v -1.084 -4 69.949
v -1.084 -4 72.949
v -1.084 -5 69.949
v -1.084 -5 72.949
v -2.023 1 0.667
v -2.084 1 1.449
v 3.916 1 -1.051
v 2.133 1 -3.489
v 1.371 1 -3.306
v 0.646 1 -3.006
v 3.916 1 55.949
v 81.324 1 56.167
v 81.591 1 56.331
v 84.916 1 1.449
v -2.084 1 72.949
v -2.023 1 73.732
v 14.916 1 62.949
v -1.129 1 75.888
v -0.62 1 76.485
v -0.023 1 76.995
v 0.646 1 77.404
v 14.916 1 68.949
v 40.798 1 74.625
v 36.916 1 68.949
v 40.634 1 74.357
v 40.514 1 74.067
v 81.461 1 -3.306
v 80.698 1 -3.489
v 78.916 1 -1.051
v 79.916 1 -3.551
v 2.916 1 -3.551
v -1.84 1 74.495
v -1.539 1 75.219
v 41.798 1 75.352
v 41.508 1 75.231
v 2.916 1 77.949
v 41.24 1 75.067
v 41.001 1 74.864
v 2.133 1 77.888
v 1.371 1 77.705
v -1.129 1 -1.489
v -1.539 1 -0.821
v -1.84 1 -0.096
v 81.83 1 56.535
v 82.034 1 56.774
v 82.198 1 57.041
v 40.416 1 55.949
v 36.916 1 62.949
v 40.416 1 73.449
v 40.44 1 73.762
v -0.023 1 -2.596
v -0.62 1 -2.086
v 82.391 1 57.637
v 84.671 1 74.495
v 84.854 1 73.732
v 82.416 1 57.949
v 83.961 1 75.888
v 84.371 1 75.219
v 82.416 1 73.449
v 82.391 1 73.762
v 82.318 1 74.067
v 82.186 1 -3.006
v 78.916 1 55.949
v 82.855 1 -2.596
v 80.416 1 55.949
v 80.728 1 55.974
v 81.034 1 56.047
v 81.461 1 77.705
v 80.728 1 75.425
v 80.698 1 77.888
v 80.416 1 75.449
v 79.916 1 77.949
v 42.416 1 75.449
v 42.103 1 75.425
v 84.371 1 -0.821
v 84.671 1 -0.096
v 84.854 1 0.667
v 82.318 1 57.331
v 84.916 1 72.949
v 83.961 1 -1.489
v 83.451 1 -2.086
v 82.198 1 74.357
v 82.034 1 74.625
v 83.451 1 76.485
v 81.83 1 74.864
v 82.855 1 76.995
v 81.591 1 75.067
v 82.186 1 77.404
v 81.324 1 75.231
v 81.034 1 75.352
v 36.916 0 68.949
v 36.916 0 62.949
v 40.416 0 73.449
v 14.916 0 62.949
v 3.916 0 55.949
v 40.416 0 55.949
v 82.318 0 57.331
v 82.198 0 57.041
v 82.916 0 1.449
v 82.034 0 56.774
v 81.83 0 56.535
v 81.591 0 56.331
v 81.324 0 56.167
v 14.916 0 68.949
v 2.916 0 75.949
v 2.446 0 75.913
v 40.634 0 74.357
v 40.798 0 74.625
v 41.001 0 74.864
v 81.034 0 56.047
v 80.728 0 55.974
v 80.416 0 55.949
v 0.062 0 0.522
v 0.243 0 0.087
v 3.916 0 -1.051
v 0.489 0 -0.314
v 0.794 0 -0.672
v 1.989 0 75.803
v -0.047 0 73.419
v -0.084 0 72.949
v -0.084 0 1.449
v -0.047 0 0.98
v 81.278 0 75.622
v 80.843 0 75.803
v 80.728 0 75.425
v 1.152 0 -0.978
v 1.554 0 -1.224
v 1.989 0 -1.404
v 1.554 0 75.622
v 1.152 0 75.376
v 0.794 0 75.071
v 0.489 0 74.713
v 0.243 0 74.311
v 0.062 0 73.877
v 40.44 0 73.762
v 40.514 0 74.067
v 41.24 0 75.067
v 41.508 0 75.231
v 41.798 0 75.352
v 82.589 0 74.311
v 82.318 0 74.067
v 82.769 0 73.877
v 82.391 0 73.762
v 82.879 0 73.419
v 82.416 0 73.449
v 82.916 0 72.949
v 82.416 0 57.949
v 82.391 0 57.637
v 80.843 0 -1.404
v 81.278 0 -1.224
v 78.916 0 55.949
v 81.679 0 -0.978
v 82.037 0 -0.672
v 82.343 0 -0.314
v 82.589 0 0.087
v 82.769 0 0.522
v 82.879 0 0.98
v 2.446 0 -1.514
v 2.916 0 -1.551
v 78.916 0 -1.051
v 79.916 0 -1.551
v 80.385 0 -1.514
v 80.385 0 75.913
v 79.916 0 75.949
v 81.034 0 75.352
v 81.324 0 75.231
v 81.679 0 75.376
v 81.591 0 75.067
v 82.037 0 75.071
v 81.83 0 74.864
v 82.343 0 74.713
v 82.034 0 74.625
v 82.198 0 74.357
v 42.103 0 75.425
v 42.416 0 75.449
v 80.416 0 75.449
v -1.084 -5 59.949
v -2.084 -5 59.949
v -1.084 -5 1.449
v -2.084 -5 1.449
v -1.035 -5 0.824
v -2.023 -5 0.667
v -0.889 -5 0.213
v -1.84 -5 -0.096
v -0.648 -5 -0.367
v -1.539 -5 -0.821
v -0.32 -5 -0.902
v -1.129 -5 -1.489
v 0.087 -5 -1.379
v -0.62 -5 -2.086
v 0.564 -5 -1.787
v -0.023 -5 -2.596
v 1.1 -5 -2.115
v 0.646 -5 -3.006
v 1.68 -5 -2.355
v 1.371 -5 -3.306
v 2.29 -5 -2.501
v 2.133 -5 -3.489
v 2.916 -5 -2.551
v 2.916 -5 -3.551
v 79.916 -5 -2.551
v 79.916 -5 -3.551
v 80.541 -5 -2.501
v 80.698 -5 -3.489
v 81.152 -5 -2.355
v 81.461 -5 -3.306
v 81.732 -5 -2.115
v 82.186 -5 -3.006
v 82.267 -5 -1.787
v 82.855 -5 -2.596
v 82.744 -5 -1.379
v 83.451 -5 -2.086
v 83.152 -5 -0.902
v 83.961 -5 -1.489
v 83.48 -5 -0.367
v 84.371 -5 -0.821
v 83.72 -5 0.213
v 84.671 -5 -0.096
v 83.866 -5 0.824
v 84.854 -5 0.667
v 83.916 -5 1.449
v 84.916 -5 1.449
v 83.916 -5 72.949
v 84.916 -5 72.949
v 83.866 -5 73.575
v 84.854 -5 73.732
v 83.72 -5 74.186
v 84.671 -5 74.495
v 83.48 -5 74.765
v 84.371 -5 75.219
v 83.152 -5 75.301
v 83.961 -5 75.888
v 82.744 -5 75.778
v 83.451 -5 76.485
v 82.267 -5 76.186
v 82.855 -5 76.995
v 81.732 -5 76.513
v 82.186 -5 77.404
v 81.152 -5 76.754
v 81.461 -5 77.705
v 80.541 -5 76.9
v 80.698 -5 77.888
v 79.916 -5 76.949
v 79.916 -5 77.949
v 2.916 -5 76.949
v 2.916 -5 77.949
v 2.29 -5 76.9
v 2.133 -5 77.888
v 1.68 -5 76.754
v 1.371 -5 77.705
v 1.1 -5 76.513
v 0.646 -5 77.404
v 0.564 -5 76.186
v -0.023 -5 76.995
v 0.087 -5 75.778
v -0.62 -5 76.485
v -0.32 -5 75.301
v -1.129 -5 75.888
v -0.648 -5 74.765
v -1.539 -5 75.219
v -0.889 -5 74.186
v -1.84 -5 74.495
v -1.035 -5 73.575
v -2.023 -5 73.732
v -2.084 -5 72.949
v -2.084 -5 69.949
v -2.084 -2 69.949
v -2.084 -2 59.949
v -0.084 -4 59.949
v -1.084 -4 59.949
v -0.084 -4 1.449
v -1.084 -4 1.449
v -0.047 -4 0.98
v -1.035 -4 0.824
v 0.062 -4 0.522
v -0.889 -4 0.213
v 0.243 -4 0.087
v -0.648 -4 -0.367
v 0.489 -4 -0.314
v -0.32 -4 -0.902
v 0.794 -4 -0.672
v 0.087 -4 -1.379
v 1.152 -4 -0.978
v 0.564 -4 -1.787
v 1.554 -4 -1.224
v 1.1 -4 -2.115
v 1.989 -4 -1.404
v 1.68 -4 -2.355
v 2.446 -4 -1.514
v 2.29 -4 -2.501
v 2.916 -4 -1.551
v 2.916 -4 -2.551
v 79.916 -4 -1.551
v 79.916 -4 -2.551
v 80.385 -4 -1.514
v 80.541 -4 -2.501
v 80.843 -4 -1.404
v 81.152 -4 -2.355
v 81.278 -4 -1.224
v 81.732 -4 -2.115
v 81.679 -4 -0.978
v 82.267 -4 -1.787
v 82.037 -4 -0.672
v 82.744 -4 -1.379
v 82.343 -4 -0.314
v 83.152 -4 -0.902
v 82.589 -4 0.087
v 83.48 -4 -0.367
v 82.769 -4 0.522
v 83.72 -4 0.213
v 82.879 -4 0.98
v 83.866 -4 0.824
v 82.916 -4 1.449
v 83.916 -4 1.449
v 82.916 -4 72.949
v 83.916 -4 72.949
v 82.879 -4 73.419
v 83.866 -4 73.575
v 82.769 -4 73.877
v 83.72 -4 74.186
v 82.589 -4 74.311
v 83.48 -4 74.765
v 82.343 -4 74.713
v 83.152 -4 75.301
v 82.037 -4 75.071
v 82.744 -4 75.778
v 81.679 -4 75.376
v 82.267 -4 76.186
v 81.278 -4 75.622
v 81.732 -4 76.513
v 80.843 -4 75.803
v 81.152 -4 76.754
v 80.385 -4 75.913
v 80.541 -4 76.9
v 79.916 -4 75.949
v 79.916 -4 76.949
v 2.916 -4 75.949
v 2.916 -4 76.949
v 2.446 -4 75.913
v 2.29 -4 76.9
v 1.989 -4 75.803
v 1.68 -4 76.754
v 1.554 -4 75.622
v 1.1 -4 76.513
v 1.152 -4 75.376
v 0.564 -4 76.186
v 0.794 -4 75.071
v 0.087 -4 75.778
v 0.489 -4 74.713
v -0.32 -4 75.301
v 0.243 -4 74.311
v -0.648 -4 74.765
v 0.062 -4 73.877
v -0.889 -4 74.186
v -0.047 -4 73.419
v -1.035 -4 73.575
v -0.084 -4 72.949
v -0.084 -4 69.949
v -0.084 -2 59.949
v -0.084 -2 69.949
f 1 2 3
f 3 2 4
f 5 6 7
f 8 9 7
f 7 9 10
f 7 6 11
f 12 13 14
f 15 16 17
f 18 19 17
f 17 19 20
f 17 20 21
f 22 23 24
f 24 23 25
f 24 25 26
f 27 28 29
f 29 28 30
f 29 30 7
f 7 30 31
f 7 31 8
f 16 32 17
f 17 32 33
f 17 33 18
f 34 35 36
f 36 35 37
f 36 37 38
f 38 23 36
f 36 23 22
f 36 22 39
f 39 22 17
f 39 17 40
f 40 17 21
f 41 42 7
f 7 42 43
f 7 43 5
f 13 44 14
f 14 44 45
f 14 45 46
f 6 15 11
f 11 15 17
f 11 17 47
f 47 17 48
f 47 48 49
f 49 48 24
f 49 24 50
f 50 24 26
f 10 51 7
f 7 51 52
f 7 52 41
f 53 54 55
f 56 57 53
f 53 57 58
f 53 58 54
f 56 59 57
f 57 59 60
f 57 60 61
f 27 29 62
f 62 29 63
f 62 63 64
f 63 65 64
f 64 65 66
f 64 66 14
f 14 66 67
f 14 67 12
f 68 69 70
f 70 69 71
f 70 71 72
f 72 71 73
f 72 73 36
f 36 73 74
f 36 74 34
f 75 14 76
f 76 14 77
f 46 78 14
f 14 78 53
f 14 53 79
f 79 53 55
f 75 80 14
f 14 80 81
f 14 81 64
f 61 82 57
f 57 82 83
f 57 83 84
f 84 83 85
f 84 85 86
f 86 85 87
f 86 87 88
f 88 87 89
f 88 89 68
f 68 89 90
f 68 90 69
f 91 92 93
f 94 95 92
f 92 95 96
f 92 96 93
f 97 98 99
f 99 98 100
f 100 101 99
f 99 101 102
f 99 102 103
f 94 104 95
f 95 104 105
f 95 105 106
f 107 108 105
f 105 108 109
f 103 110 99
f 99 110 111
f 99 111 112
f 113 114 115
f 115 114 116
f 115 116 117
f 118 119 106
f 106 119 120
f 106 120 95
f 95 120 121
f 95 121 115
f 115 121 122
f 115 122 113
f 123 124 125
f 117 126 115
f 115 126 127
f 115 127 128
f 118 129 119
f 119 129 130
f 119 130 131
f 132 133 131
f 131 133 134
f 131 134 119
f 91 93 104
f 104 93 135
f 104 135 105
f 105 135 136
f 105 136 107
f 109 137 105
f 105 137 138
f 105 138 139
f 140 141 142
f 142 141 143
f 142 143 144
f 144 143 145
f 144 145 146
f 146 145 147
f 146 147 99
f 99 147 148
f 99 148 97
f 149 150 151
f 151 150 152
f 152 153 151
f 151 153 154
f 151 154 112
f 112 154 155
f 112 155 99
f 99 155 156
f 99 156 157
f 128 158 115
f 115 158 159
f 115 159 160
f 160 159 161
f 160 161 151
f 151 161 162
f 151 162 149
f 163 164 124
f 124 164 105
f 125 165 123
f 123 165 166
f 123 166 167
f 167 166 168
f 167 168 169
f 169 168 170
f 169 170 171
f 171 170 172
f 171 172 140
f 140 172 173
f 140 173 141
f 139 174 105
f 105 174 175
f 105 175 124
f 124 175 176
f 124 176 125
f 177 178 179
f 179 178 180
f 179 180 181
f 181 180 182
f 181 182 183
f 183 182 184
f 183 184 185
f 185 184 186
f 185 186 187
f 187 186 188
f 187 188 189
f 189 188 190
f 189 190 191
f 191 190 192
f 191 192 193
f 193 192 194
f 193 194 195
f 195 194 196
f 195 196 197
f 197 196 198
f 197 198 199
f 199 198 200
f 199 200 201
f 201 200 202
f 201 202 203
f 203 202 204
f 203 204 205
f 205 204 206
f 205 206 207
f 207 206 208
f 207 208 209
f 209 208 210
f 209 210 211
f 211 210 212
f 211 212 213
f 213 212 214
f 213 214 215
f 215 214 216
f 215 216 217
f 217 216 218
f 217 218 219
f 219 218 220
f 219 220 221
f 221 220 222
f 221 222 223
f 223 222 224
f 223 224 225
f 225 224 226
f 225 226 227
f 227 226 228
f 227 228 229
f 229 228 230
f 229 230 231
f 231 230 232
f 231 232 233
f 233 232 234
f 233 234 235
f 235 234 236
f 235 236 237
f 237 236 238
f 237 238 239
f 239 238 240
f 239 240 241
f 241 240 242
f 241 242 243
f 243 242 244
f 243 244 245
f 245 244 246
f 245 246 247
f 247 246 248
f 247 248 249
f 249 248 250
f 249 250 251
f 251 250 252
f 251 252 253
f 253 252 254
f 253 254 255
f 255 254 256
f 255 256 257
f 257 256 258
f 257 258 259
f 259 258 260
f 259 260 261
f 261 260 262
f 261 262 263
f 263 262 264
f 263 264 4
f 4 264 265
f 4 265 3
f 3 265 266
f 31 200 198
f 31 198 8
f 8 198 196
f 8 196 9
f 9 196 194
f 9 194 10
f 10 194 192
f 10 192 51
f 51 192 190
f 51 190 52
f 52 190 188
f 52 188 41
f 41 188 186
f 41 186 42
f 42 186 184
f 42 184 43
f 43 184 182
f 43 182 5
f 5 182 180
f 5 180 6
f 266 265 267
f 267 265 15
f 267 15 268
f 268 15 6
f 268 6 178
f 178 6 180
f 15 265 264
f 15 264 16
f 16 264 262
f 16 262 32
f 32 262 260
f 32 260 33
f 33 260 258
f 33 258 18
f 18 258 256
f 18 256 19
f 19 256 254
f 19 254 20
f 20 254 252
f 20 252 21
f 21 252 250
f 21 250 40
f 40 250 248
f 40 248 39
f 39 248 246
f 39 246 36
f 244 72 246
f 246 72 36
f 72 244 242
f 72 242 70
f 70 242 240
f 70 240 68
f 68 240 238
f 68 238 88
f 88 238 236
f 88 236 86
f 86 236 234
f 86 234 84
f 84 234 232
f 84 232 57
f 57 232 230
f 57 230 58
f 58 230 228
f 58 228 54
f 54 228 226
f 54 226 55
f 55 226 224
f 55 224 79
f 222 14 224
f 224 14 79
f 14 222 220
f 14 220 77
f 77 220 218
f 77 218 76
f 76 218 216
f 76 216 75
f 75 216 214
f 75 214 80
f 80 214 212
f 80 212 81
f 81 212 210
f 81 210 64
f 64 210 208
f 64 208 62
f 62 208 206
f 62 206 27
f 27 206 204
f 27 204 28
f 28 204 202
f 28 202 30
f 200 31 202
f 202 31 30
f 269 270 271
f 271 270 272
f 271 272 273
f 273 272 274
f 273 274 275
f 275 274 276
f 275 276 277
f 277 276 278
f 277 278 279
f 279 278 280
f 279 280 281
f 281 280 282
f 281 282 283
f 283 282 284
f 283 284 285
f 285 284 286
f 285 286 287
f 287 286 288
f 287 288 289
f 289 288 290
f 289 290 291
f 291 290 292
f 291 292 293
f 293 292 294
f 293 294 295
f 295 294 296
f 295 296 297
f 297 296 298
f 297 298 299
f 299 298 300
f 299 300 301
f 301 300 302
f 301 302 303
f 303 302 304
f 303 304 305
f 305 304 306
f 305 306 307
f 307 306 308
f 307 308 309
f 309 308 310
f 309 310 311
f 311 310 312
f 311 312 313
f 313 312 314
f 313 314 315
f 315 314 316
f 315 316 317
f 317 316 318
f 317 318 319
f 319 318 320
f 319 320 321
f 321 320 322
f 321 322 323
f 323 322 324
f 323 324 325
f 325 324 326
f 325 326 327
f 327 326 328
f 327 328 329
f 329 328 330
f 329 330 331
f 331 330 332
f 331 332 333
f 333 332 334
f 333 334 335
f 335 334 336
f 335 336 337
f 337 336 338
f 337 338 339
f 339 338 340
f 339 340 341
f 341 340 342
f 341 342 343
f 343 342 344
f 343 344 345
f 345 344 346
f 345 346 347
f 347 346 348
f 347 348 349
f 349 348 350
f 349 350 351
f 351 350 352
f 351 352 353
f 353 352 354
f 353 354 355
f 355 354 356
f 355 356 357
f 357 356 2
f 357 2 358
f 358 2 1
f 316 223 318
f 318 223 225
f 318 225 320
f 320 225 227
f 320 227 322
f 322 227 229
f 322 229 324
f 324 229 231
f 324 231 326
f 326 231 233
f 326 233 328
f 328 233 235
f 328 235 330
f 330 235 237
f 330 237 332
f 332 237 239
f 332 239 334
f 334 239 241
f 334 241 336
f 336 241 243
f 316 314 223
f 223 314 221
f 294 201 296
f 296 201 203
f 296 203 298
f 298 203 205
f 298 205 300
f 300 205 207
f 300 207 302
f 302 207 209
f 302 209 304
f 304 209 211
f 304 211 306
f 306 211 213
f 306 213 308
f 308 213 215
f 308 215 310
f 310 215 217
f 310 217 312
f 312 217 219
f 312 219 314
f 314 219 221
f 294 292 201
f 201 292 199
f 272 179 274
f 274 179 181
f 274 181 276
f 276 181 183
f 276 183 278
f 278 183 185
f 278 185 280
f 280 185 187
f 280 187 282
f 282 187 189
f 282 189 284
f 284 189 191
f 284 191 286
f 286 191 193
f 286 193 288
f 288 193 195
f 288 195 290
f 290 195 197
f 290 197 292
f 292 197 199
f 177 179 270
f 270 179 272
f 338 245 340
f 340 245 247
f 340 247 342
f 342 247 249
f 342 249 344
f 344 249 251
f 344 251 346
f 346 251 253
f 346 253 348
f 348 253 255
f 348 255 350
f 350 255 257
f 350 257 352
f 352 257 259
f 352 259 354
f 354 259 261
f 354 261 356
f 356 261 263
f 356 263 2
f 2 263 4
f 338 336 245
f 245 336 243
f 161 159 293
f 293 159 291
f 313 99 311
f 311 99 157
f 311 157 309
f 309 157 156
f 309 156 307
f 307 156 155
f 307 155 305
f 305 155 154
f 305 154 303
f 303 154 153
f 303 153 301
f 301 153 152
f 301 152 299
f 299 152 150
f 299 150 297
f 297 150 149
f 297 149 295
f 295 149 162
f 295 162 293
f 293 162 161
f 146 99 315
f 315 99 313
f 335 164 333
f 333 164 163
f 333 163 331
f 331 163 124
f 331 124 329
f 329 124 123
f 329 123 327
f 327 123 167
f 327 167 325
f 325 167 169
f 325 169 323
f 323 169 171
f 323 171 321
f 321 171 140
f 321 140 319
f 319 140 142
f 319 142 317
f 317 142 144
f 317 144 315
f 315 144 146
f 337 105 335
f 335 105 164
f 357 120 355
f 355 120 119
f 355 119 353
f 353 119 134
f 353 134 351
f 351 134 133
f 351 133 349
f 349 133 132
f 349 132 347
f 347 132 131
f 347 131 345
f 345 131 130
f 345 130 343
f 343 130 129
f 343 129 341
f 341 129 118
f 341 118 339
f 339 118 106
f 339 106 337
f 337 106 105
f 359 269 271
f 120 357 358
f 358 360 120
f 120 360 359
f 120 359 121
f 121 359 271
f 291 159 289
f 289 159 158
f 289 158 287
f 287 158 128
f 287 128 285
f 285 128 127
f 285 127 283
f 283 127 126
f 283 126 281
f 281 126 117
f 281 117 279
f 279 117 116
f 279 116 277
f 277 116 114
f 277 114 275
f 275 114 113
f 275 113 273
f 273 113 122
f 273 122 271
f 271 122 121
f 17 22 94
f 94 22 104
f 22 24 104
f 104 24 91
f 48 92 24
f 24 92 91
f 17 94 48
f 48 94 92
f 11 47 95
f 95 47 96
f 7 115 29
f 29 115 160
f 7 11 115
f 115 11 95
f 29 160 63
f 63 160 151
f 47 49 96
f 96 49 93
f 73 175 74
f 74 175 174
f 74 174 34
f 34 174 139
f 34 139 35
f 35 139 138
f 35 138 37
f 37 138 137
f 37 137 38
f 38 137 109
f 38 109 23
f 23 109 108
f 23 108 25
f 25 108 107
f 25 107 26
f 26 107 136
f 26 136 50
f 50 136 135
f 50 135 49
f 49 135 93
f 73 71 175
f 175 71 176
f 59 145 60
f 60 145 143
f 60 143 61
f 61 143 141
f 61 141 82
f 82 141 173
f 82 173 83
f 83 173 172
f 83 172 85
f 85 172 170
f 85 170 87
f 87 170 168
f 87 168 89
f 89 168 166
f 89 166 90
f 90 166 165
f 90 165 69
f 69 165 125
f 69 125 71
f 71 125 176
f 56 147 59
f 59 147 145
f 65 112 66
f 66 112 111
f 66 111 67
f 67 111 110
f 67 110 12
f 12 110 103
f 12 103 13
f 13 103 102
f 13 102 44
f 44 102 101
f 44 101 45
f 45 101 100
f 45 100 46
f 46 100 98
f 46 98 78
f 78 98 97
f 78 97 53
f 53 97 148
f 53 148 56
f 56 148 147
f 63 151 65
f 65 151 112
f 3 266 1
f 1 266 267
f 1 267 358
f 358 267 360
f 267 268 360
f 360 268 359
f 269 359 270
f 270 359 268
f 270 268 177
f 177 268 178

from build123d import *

# Parameters (mm, degrees)
EXTRUDE_4_DEPTH          = 1
EXTRUDE_START            = -5
EXTRUDE_5_DEPTH          = 5
CUT_EXTRUDE_START        = 5
CUT_EXTRUDE_1_DEPTH      = 1
CUT_EXTRUDE_2_DEPTH      = 116.376685757
CUT_EXTRUDE_2_DEPTH_BACK = 116.376685757
SKETCH_8_W               = 22
SKETCH_8_H               = 6
SKETCH_8_W_2             = 75
SKETCH_8_H_2             = 57
CUT_EXTRUDE_3_REACH      = 118.919
SKETCH_9_W               = 10
SKETCH_9_H               = 3


with BuildPart() as part:
    # Эскиз1 → Бобышка-Вытянуть4 (new body)
    with BuildSketch(Plane(origin=(0, 0, 0), x_dir=(1, 0, 0), z_dir=(0, 1, 0))):
        with BuildLine():
            Line((-2.084374602, -1.449446306), (-2.084374602, -72.949446306))
            ThreePointArc((-2.084374602, -72.949446306), (-0.619908508, -76.484980212), (2.915625398, -77.949446306))
            Line((2.915625398, -77.949446306), (79.915625398, -77.949446306))
            ThreePointArc((79.915625398, -77.949446306), (83.451159304, -76.484980212), (84.915625398, -72.949446306))
            Line((84.915625398, -72.949446306), (84.915625398, -1.449446306))
            ThreePointArc((84.915625398, -1.449446306), (83.451159304, 2.0860876), (79.915625398, 3.550553694))
            Line((79.915625398, 3.550553694), (2.915625398, 3.550553694))
            ThreePointArc((2.915625398, 3.550553694), (-0.619908508, 2.0860876), (-2.084374602, -1.449446306))
        make_face()
    extrude(amount=EXTRUDE_4_DEPTH)

    # Эскиз1<14> → Бобышка-Вытянуть5 (add)
    with BuildSketch(Plane(origin=(0, 0, 0), x_dir=(1, 0, 0), z_dir=(0, 1, 0)).offset(EXTRUDE_START)):
        with BuildLine():
            Line((2.915625398, 3.550553694), (79.915625398, 3.550553694))
            ThreePointArc((79.915625398, 3.550553694), (83.451159304, 2.0860876), (84.915625398, -1.449446306))
            Line((84.915625398, -1.449446306), (84.915625398, -72.949446306))
            ThreePointArc((84.915625398, -72.949446306), (83.451159304, -76.484980212), (79.915625398, -77.949446306))
            Line((79.915625398, -77.949446306), (2.915625398, -77.949446306))
            ThreePointArc((2.915625398, -77.949446306), (-0.619908508, -76.484980212), (-2.084374602, -72.949446306))
            Line((-2.084374602, -72.949446306), (-2.084374602, -1.449446306))
            ThreePointArc((-2.084374602, -1.449446306), (-0.619908508, 2.0860876), (2.915625398, 3.550553694))
        make_face()
        with BuildLine():
            ThreePointArc((2.915625398, 1.550553694), (0.794305055, 0.671874038), (-0.084374602, -1.449446306))
            Line((-0.084374602, -1.449446306), (-0.084374602, -72.949446306))
            ThreePointArc((-0.084374602, -72.949446306), (0.794305055, -75.070766649), (2.915625398, -75.949446306))
            Line((2.915625398, -75.949446306), (79.915625398, -75.949446306))
            ThreePointArc((79.915625398, -75.949446306), (82.036945742, -75.070766649), (82.915625398, -72.949446306))
            Line((82.915625398, -72.949446306), (82.915625398, -1.449446306))
            ThreePointArc((82.915625398, -1.449446306), (82.036945742, 0.671874038), (79.915625398, 1.550553694))
            Line((79.915625398, 1.550553694), (2.915625398, 1.550553694))
        make_face(mode=Mode.SUBTRACT)
    extrude(amount=EXTRUDE_5_DEPTH)

    # Эскиз3 → Вырез-Вытянуть1 (cut)
    with BuildSketch(Plane.XZ.offset(CUT_EXTRUDE_START)):
        with BuildLine():
            Line((2.915625398, -2.550553694), (79.915625398, -2.550553694))
            ThreePointArc((79.915625398, -2.550553694), (82.744052523, -1.378980819), (83.915625398, 1.449446306))
            Line((83.915625398, 1.449446306), (83.915625398, 72.949446306))
            ThreePointArc((83.915625398, 72.949446306), (82.744052523, 75.777873431), (79.915625398, 76.949446306))
            Line((79.915625398, 76.949446306), (2.915625398, 76.949446306))
            ThreePointArc((2.915625398, 76.949446306), (0.087198273, 75.777873431), (-1.084374602, 72.949446306))
            Line((-1.084374602, 72.949446306), (-1.084374602, 1.449446306))
            ThreePointArc((-1.084374602, 1.449446306), (0.087198273, -1.378980819), (2.915625398, -2.550553694))
        make_face()
    extrude(amount=-CUT_EXTRUDE_1_DEPTH, mode=Mode.SUBTRACT)

    # Эскиз8 → Вырез-Вытянуть2 (cut, two sides: drawn at the far end of the back side and taken through both)
    with BuildSketch(Plane.XZ.offset(-CUT_EXTRUDE_2_DEPTH_BACK)):
        with BuildLine():
            Line((40.415625398, 55.949446306), (80.415625398, 55.949446306))
            ThreePointArc((80.415625398, 55.949446306), (81.829838961, 56.535232743), (82.415625398, 57.949446306))
            Line((82.415625398, 57.949446306), (82.415625398, 73.449446306))
            ThreePointArc((82.415625398, 73.449446306), (81.829838961, 74.863659868), (80.415625398, 75.449446306))
            Line((80.415625398, 75.449446306), (42.415625398, 75.449446306))
            ThreePointArc((42.415625398, 75.449446306), (41.001411836, 74.863659868), (40.415625398, 73.449446306))
            Line((40.415625398, 73.449446306), (40.415625398, 55.949446306))
        make_face()
        with Locations((25.915625398, 65.949446306)):
            Rectangle(SKETCH_8_W, SKETCH_8_H)
        with Locations((41.415625398, 27.449446306)):
            Rectangle(SKETCH_8_W_2, SKETCH_8_H_2)
    extrude(amount=CUT_EXTRUDE_2_DEPTH + CUT_EXTRUDE_2_DEPTH_BACK, mode=Mode.SUBTRACT)

    # Эскиз9 → Вырез-Вытянуть3 (cut, up to next)
    with BuildSketch(Plane.ZY.offset(2.084374602), mode=Mode.PRIVATE) as cut_extrude_3_sk1:
        with Locations((64.949446306, -3.5)):
            Rectangle(SKETCH_9_W, SKETCH_9_H)
    cut_extrude_3_tool1 = extrude(cut_extrude_3_sk1.sketch, amount=-CUT_EXTRUDE_3_REACH, mode=Mode.PRIVATE) & part.part
    add(cut_extrude_3_tool1.solids().sort_by_distance((-2.084375, -3.5, 64.949446))[0], mode=Mode.SUBTRACT)


solid = part.part
